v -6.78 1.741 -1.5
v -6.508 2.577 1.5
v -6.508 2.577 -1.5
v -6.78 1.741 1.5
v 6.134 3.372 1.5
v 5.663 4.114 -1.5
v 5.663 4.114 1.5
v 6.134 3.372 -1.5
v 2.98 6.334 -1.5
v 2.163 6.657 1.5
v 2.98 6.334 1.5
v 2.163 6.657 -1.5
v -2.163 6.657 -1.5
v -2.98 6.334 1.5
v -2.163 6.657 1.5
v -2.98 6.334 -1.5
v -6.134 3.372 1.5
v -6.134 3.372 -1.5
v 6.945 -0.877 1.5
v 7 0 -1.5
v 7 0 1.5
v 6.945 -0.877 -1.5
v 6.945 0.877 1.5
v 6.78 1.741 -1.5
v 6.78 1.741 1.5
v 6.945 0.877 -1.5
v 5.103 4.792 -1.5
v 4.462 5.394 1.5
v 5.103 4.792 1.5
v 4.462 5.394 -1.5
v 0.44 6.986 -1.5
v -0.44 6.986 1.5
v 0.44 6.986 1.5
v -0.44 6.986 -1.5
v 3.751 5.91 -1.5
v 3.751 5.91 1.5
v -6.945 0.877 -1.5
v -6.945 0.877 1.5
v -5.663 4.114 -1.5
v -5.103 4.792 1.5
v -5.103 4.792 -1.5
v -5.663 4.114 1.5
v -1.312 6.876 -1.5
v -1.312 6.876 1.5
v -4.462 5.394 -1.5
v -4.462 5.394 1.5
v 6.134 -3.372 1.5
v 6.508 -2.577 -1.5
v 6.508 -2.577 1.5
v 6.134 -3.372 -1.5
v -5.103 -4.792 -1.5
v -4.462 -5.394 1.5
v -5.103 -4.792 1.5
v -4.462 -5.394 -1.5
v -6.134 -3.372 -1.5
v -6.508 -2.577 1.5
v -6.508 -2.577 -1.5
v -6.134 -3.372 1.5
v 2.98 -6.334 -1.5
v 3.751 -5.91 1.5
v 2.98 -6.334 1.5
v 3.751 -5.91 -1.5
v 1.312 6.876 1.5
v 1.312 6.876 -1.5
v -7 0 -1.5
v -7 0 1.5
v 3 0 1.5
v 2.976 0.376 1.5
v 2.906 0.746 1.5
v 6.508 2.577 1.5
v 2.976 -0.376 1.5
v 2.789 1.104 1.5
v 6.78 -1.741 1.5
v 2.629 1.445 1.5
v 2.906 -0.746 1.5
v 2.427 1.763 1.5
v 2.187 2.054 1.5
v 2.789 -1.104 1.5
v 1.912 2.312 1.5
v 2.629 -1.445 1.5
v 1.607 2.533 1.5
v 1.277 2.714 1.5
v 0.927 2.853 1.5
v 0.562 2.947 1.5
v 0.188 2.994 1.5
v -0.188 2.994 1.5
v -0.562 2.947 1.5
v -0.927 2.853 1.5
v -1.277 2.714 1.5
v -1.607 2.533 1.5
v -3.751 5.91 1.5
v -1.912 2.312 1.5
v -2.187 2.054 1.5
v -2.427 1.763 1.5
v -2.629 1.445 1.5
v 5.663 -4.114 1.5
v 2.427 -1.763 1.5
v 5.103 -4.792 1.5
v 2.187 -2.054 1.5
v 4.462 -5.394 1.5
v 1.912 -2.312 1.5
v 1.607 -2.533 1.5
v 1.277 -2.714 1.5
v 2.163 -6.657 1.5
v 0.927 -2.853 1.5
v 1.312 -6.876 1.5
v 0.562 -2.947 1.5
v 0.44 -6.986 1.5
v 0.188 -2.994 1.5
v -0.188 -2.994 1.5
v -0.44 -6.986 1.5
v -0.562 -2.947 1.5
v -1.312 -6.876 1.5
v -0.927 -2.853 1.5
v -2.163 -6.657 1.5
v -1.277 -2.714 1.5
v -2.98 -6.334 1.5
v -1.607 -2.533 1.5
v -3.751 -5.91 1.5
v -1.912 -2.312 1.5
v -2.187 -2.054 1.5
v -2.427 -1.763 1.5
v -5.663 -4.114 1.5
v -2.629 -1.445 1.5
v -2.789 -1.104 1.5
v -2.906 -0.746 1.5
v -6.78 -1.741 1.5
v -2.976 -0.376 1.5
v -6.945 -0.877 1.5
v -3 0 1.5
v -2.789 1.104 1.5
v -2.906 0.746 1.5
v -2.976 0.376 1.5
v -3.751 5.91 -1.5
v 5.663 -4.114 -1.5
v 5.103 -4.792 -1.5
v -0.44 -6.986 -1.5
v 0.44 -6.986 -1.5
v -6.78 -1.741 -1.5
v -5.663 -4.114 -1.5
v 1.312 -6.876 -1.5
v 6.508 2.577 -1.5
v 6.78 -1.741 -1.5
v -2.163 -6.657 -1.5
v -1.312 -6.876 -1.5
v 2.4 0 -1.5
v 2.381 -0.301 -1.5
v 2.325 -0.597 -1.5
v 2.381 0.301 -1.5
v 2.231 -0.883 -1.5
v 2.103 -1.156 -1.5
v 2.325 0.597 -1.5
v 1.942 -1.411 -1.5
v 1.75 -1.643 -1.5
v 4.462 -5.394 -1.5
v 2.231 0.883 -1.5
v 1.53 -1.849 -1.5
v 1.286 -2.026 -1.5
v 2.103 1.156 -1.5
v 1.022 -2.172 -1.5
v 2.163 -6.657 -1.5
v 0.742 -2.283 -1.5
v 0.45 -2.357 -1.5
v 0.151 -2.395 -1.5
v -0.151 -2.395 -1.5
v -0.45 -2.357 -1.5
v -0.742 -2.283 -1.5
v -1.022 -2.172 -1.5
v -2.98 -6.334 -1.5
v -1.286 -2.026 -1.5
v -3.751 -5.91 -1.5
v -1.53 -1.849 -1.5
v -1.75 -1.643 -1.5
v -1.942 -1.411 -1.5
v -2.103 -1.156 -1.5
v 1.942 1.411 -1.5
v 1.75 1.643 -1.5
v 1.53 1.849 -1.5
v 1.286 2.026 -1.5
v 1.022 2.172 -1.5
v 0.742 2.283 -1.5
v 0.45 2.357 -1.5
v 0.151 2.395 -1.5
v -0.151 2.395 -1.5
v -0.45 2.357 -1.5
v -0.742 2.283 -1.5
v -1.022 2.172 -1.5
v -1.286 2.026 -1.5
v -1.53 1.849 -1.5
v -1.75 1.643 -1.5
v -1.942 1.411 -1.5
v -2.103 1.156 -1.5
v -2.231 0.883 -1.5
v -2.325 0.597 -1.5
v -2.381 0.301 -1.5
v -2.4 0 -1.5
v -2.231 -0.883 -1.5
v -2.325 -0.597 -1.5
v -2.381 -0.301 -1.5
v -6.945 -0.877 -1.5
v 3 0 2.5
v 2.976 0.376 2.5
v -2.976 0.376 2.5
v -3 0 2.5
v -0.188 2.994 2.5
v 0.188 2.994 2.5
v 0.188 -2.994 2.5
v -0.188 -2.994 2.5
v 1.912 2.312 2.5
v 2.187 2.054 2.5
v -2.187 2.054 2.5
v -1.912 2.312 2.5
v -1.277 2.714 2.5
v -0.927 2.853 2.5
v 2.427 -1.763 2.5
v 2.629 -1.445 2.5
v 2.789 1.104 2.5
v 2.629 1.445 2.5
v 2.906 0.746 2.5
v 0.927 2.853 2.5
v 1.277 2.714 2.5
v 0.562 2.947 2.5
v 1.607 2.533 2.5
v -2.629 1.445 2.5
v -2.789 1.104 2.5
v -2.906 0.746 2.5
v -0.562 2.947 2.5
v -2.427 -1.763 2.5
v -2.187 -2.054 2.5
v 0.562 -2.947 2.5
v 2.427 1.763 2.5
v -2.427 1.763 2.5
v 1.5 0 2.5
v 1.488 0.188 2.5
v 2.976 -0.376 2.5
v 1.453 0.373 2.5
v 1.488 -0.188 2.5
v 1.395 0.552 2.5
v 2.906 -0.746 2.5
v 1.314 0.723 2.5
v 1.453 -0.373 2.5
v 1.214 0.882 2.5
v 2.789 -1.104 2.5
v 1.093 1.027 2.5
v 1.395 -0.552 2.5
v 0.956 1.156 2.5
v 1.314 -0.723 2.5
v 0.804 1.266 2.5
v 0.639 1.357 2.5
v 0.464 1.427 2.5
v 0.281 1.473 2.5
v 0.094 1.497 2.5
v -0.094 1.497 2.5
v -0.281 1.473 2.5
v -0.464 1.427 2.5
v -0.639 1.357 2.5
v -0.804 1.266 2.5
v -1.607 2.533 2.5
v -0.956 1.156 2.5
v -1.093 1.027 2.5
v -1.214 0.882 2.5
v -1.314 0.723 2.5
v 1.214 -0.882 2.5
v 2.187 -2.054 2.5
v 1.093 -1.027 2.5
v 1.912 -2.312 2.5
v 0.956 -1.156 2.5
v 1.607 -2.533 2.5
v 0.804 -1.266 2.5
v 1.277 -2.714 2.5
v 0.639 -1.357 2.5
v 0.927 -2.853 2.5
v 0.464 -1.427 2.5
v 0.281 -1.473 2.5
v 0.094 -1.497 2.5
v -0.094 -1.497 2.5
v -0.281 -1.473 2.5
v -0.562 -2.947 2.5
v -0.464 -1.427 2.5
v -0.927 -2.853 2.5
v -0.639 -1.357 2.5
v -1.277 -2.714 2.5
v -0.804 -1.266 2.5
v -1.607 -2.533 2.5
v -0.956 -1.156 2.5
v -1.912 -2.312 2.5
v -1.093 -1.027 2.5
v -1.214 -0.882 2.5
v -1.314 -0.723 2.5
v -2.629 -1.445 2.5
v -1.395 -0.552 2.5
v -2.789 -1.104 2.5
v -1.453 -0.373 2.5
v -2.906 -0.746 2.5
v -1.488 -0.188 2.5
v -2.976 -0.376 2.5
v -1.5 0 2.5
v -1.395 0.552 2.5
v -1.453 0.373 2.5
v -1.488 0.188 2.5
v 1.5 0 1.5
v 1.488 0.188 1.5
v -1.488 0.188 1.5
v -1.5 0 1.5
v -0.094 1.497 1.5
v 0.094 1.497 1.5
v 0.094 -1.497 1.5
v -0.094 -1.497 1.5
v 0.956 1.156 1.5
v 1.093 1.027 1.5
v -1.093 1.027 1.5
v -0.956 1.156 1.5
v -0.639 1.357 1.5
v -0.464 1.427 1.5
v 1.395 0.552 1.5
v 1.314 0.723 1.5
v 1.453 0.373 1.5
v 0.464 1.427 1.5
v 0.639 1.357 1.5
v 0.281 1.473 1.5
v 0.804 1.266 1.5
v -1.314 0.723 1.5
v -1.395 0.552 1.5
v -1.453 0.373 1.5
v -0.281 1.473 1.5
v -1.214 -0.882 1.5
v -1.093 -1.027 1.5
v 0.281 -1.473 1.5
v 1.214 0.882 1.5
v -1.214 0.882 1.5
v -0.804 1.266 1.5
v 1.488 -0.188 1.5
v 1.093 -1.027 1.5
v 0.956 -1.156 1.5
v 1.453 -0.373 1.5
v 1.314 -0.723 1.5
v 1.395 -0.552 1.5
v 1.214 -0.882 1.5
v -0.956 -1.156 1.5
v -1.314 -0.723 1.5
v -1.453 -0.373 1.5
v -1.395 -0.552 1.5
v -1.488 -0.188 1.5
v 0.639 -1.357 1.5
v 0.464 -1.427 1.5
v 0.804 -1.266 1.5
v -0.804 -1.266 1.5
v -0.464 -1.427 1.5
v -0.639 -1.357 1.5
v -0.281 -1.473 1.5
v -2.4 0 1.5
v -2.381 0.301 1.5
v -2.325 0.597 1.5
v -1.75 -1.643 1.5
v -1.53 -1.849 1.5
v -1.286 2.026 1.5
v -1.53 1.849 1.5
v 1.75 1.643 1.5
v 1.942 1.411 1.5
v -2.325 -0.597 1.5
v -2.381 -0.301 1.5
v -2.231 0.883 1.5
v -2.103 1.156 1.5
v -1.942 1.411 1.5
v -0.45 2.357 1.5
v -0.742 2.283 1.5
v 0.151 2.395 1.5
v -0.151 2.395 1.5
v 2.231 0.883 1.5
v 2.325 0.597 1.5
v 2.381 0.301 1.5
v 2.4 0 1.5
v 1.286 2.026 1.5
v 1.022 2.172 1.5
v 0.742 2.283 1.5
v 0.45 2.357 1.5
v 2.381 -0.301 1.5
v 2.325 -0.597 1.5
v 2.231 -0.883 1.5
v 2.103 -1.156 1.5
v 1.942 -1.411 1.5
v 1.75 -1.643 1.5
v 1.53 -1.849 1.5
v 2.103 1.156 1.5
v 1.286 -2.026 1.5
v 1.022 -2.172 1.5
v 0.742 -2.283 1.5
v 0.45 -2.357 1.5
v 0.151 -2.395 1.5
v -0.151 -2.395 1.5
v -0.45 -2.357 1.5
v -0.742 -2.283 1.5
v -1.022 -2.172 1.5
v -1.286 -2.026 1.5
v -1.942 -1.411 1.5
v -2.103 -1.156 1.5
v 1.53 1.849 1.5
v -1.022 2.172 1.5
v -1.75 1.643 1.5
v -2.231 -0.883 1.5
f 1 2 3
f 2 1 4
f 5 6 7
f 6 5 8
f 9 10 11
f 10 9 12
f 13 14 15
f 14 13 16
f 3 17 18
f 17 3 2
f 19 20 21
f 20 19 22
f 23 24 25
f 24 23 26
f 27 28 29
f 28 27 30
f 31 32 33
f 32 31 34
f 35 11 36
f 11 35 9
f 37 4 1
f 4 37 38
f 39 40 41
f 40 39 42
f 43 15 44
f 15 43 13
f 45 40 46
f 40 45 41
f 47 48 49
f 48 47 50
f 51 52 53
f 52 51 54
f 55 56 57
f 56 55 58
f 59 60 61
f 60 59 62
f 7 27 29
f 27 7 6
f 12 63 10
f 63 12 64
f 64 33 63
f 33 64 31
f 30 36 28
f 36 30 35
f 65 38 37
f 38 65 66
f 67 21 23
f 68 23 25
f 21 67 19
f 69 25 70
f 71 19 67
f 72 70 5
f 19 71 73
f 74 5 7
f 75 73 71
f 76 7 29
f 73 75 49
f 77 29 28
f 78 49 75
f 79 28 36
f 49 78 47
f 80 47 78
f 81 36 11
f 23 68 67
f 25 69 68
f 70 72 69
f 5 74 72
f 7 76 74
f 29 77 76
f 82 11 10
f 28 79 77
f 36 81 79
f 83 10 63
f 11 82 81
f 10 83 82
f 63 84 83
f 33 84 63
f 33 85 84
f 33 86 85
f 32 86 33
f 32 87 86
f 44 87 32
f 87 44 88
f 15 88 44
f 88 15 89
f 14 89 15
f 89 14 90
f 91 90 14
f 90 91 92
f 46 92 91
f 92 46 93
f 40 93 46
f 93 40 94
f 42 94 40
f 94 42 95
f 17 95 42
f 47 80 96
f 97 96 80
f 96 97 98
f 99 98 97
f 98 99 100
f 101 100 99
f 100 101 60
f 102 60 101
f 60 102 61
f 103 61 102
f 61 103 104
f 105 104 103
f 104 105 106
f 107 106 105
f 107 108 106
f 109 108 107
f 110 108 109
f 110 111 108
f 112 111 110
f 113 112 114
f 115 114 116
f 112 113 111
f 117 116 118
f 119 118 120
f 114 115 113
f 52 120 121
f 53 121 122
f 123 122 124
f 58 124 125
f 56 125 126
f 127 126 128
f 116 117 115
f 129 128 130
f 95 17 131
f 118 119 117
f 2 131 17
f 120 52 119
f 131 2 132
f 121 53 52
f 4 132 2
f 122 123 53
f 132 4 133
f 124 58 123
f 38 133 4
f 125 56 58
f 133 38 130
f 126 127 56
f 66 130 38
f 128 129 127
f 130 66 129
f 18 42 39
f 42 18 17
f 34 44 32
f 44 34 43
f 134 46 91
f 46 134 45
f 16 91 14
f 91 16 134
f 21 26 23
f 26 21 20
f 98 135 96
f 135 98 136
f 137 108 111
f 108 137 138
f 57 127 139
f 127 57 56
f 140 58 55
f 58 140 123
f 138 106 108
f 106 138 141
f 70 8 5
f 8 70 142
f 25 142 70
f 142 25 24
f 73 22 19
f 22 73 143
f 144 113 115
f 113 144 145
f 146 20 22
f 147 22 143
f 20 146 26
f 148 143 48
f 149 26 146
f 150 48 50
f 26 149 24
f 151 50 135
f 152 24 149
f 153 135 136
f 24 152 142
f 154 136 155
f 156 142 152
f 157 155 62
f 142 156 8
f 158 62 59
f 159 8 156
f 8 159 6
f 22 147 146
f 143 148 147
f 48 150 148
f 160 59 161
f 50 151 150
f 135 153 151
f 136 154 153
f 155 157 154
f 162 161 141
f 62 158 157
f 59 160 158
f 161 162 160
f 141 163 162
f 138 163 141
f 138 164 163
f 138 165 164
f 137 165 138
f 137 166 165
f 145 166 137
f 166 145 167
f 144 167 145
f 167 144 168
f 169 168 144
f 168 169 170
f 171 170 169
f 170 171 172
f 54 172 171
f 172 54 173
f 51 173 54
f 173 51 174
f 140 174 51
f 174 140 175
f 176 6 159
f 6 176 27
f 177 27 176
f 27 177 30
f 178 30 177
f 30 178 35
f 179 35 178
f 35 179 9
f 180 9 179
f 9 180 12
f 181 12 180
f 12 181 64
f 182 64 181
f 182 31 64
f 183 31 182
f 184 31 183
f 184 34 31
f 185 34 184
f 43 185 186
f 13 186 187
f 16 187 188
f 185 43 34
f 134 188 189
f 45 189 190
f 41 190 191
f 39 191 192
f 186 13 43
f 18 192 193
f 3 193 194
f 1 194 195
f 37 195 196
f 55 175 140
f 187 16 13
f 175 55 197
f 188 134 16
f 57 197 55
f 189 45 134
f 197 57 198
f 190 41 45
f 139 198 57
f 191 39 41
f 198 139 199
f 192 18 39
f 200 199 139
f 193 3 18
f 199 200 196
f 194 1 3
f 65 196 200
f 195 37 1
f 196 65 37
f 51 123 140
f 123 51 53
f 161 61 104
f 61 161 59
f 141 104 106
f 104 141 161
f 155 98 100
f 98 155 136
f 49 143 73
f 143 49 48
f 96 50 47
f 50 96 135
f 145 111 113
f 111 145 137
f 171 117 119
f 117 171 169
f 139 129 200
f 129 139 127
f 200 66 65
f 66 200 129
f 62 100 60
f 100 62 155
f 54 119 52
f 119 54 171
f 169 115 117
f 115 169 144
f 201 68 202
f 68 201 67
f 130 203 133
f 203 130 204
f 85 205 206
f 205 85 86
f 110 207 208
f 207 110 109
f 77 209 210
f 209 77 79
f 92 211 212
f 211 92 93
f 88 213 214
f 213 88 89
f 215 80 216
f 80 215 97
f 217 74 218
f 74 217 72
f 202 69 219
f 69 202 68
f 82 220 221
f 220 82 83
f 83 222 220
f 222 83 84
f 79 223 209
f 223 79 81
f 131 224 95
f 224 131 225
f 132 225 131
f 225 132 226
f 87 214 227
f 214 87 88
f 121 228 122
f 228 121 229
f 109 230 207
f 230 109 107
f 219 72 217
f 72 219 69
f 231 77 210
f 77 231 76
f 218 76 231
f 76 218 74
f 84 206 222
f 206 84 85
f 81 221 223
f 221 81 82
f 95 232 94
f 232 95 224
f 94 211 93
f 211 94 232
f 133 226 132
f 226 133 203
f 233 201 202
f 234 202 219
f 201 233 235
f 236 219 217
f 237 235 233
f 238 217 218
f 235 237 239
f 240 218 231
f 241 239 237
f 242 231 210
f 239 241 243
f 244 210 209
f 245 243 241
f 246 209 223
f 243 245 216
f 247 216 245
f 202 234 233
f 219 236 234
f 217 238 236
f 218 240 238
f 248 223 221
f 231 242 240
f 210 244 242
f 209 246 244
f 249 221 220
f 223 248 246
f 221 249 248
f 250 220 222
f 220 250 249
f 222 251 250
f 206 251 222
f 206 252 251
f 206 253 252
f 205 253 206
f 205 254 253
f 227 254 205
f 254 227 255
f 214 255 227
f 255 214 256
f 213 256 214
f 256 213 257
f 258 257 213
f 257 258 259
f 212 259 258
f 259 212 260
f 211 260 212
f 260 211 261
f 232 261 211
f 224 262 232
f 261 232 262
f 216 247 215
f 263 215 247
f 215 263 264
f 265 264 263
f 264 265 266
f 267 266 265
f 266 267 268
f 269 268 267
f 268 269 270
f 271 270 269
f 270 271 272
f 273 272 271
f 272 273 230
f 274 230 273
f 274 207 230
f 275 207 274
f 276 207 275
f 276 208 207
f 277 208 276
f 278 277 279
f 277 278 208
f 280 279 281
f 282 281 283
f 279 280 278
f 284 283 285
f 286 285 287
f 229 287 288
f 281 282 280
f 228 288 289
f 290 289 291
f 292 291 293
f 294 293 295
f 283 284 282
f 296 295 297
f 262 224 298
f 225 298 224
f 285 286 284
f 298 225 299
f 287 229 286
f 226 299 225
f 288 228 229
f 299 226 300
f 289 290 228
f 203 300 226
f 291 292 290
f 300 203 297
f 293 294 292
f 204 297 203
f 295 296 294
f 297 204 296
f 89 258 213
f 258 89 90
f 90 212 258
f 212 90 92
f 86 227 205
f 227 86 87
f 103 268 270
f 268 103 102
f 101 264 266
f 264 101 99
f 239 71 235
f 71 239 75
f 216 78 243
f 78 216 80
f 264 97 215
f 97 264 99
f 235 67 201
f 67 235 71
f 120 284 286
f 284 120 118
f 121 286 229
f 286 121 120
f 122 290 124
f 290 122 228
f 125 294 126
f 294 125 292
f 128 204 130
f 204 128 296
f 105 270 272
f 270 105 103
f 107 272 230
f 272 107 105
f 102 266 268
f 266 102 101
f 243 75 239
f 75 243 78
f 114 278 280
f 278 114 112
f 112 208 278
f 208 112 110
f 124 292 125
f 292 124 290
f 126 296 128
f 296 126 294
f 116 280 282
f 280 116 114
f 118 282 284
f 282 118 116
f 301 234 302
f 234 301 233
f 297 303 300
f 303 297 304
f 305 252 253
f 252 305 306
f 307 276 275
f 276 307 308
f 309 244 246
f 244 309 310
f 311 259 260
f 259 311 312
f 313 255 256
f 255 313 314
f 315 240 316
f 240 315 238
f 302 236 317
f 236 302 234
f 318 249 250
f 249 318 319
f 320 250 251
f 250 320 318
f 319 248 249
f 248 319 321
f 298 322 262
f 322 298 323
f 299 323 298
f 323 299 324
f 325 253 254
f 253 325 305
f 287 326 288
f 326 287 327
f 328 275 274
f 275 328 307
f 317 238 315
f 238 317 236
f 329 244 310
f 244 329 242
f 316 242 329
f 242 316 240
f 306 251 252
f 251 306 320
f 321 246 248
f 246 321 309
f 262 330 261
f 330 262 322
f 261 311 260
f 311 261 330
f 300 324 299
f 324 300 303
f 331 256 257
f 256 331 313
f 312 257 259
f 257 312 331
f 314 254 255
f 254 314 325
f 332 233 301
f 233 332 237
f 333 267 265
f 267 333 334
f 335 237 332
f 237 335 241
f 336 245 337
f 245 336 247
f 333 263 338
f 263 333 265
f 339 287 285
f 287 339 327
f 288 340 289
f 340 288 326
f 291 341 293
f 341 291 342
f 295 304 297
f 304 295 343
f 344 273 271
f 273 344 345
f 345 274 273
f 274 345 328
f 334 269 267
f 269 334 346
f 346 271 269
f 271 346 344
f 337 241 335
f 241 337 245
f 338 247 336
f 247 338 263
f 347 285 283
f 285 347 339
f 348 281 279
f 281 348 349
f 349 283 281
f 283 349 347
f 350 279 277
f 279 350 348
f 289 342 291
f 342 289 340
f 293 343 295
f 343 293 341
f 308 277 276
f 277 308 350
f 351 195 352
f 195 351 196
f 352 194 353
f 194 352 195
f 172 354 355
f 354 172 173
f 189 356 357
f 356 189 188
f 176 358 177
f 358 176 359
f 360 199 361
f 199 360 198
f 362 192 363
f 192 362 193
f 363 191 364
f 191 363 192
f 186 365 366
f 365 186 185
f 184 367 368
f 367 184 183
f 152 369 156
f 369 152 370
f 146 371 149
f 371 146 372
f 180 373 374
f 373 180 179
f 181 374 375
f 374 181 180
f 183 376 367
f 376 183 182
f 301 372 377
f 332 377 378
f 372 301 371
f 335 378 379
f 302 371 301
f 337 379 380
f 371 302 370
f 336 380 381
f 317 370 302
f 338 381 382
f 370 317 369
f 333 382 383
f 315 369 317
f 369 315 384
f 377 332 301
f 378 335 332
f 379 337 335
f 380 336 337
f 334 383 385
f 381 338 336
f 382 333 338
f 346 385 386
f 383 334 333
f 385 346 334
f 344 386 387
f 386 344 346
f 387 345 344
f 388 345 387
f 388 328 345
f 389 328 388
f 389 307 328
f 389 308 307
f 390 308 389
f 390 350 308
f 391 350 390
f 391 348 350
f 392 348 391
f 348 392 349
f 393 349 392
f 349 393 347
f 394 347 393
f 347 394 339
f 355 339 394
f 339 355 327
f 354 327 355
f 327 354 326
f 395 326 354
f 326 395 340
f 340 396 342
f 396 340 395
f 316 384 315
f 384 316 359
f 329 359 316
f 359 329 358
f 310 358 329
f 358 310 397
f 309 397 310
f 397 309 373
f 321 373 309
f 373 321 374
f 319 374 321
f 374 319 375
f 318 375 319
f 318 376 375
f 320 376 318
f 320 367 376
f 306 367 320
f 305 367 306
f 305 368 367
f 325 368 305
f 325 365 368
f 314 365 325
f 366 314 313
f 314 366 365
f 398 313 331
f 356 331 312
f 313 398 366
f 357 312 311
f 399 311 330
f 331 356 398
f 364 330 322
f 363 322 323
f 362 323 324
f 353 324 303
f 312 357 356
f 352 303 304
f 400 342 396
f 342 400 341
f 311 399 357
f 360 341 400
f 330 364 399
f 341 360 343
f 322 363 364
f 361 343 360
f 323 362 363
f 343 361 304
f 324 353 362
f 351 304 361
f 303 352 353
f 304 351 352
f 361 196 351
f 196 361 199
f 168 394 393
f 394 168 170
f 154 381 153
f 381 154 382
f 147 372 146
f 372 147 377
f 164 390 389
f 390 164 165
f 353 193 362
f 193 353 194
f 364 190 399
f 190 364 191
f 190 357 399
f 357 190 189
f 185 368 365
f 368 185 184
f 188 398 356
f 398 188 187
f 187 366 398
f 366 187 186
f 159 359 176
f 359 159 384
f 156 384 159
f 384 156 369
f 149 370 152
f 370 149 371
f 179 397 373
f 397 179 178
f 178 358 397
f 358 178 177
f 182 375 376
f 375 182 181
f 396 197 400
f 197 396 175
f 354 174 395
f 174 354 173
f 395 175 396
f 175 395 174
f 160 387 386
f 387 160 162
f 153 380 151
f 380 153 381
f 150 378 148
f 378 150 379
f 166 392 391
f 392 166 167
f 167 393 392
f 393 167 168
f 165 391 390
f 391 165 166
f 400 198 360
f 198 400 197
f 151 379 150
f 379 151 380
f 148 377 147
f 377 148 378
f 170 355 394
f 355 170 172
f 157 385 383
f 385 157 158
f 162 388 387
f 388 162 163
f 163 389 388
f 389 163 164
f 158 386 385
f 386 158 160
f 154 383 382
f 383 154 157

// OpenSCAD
$fn = 50;


difference() {
	union() {
		translate(v = [0, 0, -1.5000000000]) {
			rotate(a = [0, 0, 0]) {
				cylinder(h = 3, r = 7.0000000000);
			}
		}
		translate(v = [0, 0, -1.5000000000]) {
			rotate(a = [0, 0, 0]) {
				cylinder(h = 4, r = 3.0000000000);
			}
		}
	}
	union() {
		translate(v = [0, 0, -125.0000000000]) {
			rotate(a = [0, 0, 0]) {
				cylinder(h = 250, r = 1.5000000000);
			}
		}
		#translate(v = [0, 0, 1.5000000000]) {
			rotate(a = [0, 180, 0]) {
				cylinder(h = 3, r1 = 2.4000000000, r2 = 2.4000000000);
			}
		}
		#translate(v = [0, 0, 2.5000000000]) {
			rotate(a = [0, 180, 0]) {
				cylinder(h = 4, r = 1.5000000000);
			}
		}
	}
}
